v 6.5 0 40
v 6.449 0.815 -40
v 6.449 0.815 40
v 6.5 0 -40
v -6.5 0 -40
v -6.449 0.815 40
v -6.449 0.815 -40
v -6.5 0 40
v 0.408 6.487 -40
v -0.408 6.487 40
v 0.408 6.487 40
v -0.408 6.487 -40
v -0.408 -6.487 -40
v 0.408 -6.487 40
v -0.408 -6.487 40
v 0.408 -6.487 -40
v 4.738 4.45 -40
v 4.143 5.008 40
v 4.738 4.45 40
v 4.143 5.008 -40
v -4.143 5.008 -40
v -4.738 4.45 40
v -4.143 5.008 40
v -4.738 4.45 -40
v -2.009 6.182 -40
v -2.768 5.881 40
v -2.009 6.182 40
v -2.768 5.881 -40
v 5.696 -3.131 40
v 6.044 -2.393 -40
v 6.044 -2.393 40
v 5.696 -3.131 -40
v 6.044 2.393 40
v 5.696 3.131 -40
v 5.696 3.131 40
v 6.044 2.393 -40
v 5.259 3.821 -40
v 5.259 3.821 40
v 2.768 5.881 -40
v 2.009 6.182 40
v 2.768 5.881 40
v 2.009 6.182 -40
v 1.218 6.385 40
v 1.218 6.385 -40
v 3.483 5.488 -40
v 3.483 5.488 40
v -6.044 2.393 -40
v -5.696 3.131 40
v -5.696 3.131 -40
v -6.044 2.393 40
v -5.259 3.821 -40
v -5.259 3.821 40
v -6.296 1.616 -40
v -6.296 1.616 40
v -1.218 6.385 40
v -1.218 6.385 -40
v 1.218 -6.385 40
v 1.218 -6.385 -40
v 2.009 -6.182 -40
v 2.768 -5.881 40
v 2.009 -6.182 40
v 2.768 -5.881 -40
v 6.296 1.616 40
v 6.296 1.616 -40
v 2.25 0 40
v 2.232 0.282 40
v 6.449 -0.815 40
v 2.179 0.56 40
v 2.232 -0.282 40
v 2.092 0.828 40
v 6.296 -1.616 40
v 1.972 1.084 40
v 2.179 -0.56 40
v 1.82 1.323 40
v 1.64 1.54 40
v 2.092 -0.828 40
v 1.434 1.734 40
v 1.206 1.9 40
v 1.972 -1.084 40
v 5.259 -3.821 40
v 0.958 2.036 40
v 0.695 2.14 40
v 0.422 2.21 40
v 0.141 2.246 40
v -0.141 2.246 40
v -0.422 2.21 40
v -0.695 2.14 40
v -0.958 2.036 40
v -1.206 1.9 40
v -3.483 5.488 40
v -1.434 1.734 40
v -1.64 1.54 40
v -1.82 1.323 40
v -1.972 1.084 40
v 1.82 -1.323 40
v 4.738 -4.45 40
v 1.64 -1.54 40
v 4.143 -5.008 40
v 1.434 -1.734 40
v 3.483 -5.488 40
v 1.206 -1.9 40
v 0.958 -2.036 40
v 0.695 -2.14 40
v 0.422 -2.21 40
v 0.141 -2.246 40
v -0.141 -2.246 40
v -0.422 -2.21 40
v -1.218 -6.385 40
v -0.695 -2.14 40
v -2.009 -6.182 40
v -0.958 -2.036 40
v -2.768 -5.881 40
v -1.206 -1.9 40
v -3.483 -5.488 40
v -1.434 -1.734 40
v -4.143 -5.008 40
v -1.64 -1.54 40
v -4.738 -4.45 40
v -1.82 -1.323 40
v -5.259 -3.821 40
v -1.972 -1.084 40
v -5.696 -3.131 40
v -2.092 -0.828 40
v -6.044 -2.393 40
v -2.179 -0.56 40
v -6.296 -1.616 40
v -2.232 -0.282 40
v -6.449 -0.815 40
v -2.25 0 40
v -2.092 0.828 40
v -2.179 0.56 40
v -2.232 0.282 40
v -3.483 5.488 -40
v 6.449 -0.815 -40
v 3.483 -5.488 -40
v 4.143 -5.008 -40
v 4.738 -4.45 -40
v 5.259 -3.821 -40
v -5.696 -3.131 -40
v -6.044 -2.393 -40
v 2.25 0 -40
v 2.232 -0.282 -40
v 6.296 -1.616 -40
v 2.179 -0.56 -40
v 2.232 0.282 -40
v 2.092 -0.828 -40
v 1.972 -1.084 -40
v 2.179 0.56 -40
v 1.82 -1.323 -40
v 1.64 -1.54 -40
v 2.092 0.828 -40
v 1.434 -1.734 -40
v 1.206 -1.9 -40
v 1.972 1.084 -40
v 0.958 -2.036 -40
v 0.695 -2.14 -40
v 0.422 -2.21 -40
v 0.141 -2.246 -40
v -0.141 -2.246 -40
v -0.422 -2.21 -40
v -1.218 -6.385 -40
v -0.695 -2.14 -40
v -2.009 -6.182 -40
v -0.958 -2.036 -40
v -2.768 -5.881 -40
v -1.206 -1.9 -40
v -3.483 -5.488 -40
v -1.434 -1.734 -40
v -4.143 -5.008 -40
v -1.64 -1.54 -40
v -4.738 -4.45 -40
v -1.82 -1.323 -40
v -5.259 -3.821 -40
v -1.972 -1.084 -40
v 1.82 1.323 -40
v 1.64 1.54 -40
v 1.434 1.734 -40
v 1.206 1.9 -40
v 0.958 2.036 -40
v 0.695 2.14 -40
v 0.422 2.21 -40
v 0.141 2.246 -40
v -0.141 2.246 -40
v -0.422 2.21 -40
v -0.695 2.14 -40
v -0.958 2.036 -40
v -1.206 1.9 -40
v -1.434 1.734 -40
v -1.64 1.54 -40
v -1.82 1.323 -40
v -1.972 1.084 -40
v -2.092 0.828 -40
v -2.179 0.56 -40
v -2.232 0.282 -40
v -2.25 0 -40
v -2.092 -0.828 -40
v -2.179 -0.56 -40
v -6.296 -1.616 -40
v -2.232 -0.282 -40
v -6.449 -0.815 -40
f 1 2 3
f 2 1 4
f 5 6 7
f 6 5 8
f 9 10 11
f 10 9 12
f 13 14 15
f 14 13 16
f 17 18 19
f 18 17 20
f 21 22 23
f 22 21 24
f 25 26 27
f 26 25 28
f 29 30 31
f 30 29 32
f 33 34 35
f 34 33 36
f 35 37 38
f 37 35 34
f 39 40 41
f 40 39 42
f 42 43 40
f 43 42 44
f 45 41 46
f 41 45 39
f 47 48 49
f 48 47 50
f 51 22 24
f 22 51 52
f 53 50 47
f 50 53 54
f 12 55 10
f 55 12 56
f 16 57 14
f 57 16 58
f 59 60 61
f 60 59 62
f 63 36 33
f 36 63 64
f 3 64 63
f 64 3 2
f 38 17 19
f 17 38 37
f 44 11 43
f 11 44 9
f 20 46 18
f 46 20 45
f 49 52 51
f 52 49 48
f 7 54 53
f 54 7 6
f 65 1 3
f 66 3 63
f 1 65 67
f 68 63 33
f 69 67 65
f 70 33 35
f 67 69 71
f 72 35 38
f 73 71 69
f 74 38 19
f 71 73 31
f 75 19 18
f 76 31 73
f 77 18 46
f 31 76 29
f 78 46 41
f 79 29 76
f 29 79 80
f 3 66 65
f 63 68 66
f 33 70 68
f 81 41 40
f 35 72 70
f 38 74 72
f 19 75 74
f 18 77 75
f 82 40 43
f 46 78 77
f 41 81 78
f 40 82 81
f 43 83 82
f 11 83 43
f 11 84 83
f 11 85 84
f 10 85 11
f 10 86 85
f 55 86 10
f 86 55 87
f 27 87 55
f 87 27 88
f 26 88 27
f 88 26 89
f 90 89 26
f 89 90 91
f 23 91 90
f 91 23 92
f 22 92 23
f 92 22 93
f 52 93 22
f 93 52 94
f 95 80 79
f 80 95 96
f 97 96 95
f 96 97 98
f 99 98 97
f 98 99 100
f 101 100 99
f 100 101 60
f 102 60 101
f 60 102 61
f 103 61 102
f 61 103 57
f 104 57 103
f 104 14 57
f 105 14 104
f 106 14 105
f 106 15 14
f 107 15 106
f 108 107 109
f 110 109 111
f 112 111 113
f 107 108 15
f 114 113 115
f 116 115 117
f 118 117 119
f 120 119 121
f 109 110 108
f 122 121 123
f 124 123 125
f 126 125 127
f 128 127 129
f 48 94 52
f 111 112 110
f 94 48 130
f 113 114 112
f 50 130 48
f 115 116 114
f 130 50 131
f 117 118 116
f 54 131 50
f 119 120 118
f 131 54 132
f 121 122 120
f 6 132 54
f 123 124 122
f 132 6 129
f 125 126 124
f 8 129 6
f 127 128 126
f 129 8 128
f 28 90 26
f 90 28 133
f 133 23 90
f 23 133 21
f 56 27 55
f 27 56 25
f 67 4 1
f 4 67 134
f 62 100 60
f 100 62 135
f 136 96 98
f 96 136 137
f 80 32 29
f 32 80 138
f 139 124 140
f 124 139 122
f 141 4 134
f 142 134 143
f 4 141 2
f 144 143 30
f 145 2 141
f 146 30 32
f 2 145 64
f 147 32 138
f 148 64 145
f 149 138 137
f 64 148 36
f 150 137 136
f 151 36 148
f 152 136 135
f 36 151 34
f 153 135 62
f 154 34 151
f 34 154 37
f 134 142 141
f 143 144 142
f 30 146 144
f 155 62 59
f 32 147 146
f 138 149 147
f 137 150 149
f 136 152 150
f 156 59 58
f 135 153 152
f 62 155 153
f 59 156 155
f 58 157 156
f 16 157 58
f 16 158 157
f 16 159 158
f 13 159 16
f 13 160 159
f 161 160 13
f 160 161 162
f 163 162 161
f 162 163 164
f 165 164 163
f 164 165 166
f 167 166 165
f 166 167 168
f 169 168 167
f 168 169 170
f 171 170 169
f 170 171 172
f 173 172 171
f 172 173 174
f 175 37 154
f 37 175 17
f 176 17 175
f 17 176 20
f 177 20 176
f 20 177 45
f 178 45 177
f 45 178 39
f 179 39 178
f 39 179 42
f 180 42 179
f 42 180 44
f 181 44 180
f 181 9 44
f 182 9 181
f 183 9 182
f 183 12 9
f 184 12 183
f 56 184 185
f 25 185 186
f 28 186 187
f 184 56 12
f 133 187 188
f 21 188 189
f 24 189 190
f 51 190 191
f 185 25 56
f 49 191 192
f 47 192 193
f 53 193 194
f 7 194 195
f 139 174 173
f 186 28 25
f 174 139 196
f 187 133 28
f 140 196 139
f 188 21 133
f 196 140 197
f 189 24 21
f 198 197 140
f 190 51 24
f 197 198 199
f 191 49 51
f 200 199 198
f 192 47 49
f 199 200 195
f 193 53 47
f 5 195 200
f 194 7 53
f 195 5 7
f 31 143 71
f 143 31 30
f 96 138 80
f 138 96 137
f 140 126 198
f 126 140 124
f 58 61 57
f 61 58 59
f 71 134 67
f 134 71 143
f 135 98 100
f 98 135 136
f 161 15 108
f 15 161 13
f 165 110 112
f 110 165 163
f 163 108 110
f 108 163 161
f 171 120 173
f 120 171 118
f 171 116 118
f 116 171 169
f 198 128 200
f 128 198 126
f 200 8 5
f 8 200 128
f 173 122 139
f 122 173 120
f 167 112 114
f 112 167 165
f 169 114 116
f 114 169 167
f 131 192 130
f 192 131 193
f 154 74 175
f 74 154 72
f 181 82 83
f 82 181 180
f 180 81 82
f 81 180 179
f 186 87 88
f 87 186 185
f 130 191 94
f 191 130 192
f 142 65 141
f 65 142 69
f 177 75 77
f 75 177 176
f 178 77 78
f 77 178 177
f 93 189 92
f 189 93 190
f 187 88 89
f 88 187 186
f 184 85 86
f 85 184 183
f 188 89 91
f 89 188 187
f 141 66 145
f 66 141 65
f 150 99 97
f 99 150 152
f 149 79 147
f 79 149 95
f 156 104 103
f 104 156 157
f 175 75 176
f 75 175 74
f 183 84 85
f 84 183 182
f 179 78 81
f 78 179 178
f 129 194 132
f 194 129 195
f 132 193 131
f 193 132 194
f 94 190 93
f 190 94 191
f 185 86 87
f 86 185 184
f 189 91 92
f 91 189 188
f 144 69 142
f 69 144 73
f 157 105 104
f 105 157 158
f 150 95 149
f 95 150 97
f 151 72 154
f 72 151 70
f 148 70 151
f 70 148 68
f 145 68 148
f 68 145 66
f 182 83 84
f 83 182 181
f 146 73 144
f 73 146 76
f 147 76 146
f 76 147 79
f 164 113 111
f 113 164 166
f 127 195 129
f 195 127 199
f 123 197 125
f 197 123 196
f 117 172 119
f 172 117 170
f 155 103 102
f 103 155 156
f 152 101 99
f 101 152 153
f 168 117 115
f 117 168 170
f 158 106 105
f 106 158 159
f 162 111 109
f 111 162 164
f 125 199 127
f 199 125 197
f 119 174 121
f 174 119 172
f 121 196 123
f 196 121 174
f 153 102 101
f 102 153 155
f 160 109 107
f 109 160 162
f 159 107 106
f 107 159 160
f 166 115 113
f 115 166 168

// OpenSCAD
$fn = 50;


difference() {
	union() {
		translate(v = [0, 0, -40.0000000000]) {
			cylinder(h = 80, r = 6.5000000000);
		}
	}
	union() {
		translate(v = [0, 0, -100.0000000000]) {
			cylinder(h = 200, r = 2.2500000000);
		}
	}
}
